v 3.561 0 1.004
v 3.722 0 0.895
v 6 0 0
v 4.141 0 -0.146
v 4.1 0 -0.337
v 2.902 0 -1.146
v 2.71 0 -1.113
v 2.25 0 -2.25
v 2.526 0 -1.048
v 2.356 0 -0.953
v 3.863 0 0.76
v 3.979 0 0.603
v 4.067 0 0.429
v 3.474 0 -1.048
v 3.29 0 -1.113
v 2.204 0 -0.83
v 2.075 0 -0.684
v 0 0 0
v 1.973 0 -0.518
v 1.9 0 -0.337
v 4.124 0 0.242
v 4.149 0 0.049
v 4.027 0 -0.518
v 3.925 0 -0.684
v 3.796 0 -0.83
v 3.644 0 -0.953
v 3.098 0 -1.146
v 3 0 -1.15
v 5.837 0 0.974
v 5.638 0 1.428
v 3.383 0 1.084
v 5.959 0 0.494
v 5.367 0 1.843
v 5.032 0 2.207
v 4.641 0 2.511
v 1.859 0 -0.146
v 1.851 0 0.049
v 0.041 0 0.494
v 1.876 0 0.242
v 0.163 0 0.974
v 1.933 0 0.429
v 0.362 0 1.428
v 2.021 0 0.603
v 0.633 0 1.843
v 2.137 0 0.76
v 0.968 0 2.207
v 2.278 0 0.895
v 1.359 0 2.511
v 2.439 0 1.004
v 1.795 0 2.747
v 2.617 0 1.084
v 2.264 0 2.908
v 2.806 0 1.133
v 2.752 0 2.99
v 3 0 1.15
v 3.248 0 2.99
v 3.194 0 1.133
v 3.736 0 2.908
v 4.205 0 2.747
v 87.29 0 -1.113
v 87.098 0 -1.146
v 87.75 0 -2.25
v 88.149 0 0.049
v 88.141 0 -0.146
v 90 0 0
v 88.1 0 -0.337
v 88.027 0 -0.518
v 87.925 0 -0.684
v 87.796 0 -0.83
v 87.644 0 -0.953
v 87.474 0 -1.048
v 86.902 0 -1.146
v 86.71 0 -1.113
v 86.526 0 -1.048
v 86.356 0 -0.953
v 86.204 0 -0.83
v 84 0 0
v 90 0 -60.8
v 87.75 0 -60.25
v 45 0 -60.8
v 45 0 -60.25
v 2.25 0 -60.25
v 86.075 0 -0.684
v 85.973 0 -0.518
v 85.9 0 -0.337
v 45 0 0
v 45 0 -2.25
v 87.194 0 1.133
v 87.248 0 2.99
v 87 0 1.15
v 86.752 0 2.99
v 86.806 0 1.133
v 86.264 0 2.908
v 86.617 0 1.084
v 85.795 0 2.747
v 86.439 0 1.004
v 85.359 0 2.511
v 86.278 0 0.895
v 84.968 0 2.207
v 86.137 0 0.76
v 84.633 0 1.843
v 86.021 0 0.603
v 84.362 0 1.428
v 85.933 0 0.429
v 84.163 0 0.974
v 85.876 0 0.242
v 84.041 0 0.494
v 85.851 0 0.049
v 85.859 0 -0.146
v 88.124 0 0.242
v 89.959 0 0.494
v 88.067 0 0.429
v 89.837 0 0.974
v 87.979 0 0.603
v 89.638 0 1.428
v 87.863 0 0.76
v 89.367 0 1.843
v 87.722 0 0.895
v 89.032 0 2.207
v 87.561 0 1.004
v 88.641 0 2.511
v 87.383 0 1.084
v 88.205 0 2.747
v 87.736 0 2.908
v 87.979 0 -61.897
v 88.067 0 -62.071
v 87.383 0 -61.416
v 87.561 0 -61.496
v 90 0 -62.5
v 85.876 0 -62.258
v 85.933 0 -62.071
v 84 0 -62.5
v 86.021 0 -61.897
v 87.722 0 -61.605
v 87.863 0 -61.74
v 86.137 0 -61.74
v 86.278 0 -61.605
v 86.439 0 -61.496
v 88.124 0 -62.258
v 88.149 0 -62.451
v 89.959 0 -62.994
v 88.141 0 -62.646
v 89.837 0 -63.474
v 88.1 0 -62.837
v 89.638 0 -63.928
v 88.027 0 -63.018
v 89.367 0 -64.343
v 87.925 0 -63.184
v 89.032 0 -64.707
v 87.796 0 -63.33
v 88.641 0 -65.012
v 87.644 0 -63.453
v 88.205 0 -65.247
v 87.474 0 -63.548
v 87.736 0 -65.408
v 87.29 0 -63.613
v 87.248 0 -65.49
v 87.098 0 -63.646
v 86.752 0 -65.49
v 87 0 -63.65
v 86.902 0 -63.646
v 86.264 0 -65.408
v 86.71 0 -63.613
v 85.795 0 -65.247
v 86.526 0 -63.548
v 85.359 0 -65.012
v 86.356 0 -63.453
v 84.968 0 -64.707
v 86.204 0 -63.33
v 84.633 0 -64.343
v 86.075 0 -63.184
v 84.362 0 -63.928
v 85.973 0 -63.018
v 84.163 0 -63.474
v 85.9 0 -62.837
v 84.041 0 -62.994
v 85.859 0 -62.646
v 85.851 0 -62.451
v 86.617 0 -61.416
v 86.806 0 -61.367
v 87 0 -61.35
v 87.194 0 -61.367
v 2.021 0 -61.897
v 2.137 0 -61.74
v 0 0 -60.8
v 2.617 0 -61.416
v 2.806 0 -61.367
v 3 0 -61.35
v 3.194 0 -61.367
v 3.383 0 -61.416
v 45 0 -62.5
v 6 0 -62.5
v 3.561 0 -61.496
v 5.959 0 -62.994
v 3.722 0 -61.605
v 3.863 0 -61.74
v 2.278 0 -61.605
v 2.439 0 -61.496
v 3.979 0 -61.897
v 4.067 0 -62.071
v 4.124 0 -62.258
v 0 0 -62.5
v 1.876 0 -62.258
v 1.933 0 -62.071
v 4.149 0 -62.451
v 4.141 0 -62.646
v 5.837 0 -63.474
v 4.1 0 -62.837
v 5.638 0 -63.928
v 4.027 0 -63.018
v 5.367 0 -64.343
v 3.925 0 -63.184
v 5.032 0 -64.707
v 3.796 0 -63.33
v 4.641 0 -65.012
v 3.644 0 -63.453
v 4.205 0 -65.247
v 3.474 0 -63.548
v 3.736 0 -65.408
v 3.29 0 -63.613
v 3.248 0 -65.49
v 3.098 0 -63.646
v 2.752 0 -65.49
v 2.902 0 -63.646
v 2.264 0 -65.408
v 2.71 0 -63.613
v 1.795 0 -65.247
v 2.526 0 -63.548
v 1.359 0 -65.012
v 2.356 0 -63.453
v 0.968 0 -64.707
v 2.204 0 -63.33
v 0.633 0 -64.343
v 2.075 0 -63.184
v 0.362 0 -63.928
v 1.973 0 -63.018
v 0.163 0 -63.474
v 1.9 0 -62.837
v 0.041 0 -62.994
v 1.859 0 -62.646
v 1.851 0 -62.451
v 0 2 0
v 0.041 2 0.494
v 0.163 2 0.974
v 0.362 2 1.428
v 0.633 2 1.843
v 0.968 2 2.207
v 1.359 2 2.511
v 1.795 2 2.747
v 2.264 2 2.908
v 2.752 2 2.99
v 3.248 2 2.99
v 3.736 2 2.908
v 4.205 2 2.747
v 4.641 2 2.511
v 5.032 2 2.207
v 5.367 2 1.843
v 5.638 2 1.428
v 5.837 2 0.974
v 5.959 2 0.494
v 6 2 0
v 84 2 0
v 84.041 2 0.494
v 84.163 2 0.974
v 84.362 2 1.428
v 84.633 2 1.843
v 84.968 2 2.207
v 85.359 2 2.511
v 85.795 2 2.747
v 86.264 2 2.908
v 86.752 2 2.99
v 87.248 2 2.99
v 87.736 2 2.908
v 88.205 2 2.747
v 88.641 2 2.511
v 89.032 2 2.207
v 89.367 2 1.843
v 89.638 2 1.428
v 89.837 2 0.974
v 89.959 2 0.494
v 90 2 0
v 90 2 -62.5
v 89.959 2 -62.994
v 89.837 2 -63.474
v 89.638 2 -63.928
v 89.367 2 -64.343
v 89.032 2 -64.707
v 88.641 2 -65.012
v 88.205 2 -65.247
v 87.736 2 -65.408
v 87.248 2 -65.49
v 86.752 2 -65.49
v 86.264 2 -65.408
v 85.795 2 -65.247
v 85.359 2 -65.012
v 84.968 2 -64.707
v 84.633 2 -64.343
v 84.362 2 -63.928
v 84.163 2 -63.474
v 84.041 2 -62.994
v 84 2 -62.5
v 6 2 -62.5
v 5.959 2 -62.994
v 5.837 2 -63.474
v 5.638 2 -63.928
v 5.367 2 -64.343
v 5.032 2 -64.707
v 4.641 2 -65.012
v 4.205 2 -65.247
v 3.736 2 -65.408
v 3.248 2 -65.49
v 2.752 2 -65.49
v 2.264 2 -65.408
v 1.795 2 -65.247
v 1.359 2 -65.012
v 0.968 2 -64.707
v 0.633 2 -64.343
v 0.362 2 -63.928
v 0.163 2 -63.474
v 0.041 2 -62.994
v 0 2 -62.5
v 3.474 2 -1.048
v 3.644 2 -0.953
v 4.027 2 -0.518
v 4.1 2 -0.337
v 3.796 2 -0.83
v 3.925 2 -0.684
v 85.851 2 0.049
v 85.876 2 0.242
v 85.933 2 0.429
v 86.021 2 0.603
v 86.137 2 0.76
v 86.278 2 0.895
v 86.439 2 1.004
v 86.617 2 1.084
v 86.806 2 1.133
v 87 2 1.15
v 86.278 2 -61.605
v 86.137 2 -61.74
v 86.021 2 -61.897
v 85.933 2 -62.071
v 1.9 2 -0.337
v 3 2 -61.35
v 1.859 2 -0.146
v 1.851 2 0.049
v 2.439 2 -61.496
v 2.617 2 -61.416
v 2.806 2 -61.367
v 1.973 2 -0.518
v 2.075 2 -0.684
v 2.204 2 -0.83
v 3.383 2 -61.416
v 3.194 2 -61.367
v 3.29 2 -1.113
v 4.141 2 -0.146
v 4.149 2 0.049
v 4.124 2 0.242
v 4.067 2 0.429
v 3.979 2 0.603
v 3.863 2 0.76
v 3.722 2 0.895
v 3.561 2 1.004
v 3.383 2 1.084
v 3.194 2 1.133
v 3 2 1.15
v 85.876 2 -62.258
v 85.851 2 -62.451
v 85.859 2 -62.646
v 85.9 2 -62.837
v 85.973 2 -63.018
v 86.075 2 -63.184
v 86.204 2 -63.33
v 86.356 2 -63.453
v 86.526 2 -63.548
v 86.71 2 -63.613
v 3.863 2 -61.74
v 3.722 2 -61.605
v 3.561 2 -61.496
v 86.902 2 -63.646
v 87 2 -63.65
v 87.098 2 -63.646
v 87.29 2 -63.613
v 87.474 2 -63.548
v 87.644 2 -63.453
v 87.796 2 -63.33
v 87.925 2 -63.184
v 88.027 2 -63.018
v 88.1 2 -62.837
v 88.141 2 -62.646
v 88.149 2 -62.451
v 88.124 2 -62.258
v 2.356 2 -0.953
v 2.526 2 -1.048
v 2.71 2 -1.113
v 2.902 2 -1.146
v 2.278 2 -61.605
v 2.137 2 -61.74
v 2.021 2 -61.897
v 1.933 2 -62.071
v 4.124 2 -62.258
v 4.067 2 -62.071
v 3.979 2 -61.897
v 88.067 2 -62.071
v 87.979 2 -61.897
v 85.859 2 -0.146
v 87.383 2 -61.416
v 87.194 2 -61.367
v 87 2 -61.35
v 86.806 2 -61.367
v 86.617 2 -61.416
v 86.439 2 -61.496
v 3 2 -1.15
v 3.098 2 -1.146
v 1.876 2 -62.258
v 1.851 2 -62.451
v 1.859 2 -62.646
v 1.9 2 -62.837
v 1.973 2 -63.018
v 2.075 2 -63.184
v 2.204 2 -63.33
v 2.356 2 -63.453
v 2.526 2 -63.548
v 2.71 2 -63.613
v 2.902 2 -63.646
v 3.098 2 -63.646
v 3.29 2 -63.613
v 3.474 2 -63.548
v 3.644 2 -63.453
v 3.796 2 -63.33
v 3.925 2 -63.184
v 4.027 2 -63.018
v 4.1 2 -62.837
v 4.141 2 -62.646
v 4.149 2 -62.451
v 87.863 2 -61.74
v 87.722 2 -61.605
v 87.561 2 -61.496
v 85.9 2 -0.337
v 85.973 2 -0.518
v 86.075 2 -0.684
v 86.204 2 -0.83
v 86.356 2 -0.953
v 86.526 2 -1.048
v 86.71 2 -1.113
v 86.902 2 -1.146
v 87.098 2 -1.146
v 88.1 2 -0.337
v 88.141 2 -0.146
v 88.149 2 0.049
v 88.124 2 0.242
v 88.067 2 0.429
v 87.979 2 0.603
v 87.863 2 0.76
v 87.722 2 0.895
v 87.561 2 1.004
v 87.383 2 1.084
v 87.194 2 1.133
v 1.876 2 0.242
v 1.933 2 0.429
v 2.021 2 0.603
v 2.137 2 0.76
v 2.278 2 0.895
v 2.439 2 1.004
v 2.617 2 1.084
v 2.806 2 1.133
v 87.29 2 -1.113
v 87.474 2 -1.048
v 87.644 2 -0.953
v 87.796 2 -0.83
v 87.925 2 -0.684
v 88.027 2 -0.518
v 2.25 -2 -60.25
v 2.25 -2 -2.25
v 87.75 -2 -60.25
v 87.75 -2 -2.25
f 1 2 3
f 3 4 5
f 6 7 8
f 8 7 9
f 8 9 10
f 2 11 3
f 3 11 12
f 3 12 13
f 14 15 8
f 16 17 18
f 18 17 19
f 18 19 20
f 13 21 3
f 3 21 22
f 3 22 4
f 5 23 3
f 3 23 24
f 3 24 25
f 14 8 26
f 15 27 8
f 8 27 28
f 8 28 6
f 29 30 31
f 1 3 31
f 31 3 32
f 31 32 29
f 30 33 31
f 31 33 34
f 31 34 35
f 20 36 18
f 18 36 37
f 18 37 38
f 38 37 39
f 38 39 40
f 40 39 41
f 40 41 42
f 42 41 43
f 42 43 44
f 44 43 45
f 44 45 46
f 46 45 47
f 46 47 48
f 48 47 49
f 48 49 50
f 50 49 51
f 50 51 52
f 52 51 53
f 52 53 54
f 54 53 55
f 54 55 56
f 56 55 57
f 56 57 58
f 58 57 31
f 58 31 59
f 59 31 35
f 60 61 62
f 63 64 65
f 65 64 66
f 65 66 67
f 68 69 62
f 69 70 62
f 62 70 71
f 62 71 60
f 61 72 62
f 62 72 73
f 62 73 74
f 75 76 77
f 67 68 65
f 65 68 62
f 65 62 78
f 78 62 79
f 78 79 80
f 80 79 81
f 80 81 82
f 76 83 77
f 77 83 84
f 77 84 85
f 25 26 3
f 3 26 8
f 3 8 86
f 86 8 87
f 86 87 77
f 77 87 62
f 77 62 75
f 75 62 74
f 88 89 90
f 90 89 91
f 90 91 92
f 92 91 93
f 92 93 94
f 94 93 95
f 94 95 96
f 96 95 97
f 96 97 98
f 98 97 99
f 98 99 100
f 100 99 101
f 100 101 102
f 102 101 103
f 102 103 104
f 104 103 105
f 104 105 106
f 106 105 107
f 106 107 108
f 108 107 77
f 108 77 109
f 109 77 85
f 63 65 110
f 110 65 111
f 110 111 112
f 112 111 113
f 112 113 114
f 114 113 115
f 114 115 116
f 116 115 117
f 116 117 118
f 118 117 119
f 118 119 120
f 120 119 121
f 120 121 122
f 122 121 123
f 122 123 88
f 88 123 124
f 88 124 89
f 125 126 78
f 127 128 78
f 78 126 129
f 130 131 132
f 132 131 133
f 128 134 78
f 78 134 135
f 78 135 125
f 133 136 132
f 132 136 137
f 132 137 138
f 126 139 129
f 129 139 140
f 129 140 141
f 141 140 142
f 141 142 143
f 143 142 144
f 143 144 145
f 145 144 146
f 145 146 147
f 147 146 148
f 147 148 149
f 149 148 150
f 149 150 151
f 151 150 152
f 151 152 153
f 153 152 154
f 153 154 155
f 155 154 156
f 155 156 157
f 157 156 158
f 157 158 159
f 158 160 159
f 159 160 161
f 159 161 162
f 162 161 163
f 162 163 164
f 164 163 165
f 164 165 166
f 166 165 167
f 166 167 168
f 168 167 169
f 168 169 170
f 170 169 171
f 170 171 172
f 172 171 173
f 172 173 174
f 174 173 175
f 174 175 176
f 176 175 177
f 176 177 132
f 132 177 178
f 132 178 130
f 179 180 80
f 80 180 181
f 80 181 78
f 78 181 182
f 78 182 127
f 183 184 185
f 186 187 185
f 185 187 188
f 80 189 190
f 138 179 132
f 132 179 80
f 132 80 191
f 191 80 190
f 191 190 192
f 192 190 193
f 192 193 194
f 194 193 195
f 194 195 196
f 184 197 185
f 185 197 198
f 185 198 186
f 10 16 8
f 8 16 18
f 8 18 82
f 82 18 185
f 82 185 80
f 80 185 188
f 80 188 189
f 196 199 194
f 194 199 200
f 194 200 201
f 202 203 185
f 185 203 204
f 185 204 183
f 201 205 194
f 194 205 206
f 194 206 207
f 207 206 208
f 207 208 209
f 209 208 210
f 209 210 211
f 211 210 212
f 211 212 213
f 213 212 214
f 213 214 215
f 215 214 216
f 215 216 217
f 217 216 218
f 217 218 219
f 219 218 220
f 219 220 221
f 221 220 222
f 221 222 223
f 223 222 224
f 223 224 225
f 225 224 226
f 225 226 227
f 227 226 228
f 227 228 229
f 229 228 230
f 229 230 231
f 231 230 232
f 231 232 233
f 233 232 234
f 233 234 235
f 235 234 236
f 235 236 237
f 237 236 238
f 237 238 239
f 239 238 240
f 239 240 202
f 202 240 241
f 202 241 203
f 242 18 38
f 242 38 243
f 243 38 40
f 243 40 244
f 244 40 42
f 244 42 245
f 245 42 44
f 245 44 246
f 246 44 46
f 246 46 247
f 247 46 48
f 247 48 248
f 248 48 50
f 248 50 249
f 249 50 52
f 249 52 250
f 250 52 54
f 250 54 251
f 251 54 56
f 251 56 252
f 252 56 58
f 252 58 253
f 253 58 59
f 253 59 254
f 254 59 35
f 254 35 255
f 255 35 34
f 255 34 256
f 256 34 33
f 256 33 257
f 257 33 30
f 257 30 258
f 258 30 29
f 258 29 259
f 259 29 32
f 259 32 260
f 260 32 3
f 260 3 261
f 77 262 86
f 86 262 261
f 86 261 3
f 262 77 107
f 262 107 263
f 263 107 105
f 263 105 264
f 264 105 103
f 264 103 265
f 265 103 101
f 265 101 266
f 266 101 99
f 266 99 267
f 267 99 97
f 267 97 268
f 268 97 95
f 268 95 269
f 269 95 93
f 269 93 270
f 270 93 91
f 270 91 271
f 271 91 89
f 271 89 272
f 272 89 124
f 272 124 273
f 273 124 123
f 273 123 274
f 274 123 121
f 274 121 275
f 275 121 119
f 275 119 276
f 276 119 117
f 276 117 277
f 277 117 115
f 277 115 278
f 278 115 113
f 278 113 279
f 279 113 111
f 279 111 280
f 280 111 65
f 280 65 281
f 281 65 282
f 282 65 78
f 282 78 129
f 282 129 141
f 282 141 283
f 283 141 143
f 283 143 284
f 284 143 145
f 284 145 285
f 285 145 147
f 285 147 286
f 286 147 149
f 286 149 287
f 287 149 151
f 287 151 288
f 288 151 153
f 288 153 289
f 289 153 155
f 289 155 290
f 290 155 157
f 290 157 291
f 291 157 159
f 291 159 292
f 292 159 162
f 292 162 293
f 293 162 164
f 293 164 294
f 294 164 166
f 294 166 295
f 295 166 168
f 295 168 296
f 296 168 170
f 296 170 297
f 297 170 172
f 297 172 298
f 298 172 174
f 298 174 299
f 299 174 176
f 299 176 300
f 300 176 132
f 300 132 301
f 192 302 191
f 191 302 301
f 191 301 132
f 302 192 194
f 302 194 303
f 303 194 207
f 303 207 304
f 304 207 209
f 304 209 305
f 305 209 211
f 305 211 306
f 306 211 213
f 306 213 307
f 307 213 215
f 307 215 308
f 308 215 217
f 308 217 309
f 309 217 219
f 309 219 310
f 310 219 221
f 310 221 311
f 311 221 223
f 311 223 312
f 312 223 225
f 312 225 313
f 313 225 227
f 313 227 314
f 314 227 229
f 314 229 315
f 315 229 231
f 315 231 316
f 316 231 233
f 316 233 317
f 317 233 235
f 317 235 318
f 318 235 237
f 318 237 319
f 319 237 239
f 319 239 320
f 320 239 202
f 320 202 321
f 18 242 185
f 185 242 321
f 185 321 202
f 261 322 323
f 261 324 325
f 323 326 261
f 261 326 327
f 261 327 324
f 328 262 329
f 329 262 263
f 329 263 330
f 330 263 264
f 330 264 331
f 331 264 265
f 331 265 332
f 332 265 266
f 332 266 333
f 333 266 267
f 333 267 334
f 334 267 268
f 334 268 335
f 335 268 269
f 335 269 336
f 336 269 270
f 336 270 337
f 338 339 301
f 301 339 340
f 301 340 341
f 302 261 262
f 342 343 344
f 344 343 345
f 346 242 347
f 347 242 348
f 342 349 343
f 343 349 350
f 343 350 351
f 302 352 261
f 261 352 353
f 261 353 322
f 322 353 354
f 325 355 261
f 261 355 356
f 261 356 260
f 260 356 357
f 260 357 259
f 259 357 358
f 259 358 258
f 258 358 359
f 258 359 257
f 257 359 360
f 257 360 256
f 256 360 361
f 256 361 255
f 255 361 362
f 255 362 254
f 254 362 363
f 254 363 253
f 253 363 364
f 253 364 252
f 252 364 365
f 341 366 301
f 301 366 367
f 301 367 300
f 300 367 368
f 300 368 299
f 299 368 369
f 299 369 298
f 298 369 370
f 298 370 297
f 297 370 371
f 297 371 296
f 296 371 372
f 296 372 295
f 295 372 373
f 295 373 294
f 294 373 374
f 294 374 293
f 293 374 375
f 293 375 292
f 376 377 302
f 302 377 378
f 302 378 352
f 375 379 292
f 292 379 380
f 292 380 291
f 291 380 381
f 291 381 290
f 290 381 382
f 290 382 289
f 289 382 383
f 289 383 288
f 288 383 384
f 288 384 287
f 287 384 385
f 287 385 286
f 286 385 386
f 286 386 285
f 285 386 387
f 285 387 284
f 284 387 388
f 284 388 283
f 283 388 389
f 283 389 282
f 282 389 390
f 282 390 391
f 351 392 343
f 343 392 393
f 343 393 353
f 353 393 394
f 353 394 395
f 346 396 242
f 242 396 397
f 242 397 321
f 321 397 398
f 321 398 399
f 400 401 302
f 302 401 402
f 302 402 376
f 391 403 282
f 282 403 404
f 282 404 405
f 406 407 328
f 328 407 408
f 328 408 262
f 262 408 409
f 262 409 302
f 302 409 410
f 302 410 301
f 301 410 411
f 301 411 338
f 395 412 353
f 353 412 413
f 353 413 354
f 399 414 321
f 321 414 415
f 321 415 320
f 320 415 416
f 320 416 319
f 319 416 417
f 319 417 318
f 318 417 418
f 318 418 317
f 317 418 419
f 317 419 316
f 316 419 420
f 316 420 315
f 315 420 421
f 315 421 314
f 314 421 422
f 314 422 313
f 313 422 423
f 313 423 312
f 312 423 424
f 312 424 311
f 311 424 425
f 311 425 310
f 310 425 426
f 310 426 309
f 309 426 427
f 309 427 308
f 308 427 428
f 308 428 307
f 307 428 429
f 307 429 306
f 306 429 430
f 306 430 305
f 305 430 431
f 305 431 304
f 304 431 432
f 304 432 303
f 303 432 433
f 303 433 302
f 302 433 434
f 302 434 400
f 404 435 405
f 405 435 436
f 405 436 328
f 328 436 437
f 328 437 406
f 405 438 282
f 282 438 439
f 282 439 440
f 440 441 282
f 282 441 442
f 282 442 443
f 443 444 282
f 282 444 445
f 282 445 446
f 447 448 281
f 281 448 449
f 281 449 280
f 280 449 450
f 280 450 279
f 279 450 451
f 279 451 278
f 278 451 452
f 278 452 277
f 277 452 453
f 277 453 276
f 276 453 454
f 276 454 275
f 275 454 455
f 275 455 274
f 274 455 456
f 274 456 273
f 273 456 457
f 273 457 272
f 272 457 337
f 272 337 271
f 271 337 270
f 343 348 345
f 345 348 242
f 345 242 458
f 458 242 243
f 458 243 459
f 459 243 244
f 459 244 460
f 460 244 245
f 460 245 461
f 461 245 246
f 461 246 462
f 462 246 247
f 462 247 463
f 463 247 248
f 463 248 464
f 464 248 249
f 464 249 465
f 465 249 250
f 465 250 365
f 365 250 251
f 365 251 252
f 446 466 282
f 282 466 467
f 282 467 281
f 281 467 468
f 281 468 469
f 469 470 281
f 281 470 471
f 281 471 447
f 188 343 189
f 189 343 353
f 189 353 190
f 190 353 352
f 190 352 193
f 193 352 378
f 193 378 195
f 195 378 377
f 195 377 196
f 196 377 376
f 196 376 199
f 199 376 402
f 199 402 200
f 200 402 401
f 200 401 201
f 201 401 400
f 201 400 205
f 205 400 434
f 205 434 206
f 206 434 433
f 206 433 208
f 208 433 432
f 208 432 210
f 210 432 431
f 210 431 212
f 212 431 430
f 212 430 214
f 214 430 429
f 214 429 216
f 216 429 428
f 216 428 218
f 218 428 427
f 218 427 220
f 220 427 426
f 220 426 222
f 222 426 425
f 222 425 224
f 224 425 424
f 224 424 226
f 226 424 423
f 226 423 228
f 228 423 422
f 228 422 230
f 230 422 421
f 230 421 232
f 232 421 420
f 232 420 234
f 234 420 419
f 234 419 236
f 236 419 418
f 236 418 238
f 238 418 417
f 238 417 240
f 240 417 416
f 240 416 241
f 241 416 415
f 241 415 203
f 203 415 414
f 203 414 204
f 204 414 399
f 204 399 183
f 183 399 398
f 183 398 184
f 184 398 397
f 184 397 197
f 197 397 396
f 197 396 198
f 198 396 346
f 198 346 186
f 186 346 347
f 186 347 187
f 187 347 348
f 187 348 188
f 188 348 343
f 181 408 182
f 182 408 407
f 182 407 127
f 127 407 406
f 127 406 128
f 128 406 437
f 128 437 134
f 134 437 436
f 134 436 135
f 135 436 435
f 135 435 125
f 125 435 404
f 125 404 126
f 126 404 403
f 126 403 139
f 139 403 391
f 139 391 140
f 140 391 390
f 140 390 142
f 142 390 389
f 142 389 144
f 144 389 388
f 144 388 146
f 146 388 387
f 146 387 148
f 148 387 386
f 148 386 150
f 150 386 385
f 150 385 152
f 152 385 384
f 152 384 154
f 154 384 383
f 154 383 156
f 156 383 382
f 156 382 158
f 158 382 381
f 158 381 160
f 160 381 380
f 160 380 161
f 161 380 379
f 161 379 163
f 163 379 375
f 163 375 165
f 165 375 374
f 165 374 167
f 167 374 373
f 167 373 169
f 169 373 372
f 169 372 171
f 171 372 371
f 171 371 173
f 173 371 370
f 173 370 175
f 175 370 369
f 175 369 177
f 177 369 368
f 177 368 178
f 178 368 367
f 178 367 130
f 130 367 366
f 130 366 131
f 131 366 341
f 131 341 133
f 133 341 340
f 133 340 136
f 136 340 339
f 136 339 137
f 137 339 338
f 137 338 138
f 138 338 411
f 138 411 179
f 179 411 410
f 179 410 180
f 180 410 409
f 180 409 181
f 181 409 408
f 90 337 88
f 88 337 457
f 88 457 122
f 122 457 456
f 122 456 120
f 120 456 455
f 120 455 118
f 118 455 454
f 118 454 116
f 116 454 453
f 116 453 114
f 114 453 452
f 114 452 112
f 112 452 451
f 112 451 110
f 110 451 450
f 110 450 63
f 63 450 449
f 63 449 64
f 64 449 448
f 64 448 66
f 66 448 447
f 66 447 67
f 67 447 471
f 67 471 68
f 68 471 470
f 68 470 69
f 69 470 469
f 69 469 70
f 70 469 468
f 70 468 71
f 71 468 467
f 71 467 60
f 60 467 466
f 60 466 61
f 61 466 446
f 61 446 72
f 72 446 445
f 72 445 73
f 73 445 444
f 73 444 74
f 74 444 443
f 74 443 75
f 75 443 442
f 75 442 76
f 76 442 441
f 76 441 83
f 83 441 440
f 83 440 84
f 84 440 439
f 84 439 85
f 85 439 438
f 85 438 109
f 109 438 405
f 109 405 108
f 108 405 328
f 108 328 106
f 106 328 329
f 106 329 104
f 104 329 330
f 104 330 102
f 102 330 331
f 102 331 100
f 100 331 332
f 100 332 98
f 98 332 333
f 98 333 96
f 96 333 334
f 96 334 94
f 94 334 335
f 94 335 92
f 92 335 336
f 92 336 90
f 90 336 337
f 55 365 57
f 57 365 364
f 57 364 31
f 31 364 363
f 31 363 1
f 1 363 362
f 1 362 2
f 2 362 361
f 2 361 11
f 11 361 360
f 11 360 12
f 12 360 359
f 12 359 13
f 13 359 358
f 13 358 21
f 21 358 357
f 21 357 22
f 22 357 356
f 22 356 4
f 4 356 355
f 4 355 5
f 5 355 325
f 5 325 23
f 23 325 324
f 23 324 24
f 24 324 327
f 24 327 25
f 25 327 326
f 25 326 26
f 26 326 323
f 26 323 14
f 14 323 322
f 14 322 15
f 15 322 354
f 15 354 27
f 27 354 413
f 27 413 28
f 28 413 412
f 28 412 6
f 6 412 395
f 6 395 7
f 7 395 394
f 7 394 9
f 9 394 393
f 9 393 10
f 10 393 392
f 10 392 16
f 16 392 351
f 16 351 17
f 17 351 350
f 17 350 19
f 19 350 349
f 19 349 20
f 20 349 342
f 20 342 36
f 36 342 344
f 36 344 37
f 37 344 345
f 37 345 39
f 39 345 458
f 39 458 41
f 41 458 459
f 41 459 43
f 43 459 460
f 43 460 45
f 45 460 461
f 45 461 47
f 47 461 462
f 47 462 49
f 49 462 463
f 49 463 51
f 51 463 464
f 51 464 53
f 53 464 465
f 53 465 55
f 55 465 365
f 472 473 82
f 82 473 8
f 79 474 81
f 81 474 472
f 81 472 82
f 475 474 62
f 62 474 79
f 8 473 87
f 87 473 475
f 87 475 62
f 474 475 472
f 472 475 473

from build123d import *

# Parameters (mm, degrees)
BASE_EXTRUDE_DEPTH   = 2
HOLES_R              = 1.15
HOLES_CUT_DEPTH      = 3
INSIDE_W             = 85.5
INSIDE_H             = 58
INSIDE_EXTRUDE_DEPTH = 2


with BuildPart() as part:
    # Base → Base Extrude (new body)
    with BuildSketch(Plane(origin=(0, 0, 0), x_dir=(1, 0, 0), z_dir=(0, 1, 0))):
        with BuildLine():
            Line((6, 0), (84, 0))
            ThreePointArc((84, 0), (87, -3), (90, 0))
            Line((90, 0), (90, 62.5))
            ThreePointArc((90, 62.5), (87, 65.5), (84, 62.5))
            Line((84, 62.5), (6, 62.5))
            ThreePointArc((6, 62.5), (3, 65.5), (0, 62.5))
            Line((0, 62.5), (0, 0))
            ThreePointArc((0, 0), (3, -3), (6, 0))
        make_face()
    extrude(amount=BASE_EXTRUDE_DEPTH)

    # Holes → Holes Cut (cut, through all)
    with BuildSketch(Plane(origin=(0, 2, 0), x_dir=(1, 0, 0), z_dir=(0, 1, 0))):
        with Locations((3, 62.5)):
            Circle(HOLES_R)
        with Locations((87, 62.5)):
            Circle(HOLES_R)
        with Locations((87, 0)):
            Circle(HOLES_R)
        with Locations((3, 0)):
            Circle(HOLES_R)
    extrude(amount=-HOLES_CUT_DEPTH, mode=Mode.SUBTRACT)

    # Inside → Inside Extrude (add)
    with BuildSketch(Plane.XZ):
        with Locations((45, -31.25)):
            Rectangle(INSIDE_W, INSIDE_H)
    extrude(amount=INSIDE_EXTRUDE_DEPTH)


solid = part.part
